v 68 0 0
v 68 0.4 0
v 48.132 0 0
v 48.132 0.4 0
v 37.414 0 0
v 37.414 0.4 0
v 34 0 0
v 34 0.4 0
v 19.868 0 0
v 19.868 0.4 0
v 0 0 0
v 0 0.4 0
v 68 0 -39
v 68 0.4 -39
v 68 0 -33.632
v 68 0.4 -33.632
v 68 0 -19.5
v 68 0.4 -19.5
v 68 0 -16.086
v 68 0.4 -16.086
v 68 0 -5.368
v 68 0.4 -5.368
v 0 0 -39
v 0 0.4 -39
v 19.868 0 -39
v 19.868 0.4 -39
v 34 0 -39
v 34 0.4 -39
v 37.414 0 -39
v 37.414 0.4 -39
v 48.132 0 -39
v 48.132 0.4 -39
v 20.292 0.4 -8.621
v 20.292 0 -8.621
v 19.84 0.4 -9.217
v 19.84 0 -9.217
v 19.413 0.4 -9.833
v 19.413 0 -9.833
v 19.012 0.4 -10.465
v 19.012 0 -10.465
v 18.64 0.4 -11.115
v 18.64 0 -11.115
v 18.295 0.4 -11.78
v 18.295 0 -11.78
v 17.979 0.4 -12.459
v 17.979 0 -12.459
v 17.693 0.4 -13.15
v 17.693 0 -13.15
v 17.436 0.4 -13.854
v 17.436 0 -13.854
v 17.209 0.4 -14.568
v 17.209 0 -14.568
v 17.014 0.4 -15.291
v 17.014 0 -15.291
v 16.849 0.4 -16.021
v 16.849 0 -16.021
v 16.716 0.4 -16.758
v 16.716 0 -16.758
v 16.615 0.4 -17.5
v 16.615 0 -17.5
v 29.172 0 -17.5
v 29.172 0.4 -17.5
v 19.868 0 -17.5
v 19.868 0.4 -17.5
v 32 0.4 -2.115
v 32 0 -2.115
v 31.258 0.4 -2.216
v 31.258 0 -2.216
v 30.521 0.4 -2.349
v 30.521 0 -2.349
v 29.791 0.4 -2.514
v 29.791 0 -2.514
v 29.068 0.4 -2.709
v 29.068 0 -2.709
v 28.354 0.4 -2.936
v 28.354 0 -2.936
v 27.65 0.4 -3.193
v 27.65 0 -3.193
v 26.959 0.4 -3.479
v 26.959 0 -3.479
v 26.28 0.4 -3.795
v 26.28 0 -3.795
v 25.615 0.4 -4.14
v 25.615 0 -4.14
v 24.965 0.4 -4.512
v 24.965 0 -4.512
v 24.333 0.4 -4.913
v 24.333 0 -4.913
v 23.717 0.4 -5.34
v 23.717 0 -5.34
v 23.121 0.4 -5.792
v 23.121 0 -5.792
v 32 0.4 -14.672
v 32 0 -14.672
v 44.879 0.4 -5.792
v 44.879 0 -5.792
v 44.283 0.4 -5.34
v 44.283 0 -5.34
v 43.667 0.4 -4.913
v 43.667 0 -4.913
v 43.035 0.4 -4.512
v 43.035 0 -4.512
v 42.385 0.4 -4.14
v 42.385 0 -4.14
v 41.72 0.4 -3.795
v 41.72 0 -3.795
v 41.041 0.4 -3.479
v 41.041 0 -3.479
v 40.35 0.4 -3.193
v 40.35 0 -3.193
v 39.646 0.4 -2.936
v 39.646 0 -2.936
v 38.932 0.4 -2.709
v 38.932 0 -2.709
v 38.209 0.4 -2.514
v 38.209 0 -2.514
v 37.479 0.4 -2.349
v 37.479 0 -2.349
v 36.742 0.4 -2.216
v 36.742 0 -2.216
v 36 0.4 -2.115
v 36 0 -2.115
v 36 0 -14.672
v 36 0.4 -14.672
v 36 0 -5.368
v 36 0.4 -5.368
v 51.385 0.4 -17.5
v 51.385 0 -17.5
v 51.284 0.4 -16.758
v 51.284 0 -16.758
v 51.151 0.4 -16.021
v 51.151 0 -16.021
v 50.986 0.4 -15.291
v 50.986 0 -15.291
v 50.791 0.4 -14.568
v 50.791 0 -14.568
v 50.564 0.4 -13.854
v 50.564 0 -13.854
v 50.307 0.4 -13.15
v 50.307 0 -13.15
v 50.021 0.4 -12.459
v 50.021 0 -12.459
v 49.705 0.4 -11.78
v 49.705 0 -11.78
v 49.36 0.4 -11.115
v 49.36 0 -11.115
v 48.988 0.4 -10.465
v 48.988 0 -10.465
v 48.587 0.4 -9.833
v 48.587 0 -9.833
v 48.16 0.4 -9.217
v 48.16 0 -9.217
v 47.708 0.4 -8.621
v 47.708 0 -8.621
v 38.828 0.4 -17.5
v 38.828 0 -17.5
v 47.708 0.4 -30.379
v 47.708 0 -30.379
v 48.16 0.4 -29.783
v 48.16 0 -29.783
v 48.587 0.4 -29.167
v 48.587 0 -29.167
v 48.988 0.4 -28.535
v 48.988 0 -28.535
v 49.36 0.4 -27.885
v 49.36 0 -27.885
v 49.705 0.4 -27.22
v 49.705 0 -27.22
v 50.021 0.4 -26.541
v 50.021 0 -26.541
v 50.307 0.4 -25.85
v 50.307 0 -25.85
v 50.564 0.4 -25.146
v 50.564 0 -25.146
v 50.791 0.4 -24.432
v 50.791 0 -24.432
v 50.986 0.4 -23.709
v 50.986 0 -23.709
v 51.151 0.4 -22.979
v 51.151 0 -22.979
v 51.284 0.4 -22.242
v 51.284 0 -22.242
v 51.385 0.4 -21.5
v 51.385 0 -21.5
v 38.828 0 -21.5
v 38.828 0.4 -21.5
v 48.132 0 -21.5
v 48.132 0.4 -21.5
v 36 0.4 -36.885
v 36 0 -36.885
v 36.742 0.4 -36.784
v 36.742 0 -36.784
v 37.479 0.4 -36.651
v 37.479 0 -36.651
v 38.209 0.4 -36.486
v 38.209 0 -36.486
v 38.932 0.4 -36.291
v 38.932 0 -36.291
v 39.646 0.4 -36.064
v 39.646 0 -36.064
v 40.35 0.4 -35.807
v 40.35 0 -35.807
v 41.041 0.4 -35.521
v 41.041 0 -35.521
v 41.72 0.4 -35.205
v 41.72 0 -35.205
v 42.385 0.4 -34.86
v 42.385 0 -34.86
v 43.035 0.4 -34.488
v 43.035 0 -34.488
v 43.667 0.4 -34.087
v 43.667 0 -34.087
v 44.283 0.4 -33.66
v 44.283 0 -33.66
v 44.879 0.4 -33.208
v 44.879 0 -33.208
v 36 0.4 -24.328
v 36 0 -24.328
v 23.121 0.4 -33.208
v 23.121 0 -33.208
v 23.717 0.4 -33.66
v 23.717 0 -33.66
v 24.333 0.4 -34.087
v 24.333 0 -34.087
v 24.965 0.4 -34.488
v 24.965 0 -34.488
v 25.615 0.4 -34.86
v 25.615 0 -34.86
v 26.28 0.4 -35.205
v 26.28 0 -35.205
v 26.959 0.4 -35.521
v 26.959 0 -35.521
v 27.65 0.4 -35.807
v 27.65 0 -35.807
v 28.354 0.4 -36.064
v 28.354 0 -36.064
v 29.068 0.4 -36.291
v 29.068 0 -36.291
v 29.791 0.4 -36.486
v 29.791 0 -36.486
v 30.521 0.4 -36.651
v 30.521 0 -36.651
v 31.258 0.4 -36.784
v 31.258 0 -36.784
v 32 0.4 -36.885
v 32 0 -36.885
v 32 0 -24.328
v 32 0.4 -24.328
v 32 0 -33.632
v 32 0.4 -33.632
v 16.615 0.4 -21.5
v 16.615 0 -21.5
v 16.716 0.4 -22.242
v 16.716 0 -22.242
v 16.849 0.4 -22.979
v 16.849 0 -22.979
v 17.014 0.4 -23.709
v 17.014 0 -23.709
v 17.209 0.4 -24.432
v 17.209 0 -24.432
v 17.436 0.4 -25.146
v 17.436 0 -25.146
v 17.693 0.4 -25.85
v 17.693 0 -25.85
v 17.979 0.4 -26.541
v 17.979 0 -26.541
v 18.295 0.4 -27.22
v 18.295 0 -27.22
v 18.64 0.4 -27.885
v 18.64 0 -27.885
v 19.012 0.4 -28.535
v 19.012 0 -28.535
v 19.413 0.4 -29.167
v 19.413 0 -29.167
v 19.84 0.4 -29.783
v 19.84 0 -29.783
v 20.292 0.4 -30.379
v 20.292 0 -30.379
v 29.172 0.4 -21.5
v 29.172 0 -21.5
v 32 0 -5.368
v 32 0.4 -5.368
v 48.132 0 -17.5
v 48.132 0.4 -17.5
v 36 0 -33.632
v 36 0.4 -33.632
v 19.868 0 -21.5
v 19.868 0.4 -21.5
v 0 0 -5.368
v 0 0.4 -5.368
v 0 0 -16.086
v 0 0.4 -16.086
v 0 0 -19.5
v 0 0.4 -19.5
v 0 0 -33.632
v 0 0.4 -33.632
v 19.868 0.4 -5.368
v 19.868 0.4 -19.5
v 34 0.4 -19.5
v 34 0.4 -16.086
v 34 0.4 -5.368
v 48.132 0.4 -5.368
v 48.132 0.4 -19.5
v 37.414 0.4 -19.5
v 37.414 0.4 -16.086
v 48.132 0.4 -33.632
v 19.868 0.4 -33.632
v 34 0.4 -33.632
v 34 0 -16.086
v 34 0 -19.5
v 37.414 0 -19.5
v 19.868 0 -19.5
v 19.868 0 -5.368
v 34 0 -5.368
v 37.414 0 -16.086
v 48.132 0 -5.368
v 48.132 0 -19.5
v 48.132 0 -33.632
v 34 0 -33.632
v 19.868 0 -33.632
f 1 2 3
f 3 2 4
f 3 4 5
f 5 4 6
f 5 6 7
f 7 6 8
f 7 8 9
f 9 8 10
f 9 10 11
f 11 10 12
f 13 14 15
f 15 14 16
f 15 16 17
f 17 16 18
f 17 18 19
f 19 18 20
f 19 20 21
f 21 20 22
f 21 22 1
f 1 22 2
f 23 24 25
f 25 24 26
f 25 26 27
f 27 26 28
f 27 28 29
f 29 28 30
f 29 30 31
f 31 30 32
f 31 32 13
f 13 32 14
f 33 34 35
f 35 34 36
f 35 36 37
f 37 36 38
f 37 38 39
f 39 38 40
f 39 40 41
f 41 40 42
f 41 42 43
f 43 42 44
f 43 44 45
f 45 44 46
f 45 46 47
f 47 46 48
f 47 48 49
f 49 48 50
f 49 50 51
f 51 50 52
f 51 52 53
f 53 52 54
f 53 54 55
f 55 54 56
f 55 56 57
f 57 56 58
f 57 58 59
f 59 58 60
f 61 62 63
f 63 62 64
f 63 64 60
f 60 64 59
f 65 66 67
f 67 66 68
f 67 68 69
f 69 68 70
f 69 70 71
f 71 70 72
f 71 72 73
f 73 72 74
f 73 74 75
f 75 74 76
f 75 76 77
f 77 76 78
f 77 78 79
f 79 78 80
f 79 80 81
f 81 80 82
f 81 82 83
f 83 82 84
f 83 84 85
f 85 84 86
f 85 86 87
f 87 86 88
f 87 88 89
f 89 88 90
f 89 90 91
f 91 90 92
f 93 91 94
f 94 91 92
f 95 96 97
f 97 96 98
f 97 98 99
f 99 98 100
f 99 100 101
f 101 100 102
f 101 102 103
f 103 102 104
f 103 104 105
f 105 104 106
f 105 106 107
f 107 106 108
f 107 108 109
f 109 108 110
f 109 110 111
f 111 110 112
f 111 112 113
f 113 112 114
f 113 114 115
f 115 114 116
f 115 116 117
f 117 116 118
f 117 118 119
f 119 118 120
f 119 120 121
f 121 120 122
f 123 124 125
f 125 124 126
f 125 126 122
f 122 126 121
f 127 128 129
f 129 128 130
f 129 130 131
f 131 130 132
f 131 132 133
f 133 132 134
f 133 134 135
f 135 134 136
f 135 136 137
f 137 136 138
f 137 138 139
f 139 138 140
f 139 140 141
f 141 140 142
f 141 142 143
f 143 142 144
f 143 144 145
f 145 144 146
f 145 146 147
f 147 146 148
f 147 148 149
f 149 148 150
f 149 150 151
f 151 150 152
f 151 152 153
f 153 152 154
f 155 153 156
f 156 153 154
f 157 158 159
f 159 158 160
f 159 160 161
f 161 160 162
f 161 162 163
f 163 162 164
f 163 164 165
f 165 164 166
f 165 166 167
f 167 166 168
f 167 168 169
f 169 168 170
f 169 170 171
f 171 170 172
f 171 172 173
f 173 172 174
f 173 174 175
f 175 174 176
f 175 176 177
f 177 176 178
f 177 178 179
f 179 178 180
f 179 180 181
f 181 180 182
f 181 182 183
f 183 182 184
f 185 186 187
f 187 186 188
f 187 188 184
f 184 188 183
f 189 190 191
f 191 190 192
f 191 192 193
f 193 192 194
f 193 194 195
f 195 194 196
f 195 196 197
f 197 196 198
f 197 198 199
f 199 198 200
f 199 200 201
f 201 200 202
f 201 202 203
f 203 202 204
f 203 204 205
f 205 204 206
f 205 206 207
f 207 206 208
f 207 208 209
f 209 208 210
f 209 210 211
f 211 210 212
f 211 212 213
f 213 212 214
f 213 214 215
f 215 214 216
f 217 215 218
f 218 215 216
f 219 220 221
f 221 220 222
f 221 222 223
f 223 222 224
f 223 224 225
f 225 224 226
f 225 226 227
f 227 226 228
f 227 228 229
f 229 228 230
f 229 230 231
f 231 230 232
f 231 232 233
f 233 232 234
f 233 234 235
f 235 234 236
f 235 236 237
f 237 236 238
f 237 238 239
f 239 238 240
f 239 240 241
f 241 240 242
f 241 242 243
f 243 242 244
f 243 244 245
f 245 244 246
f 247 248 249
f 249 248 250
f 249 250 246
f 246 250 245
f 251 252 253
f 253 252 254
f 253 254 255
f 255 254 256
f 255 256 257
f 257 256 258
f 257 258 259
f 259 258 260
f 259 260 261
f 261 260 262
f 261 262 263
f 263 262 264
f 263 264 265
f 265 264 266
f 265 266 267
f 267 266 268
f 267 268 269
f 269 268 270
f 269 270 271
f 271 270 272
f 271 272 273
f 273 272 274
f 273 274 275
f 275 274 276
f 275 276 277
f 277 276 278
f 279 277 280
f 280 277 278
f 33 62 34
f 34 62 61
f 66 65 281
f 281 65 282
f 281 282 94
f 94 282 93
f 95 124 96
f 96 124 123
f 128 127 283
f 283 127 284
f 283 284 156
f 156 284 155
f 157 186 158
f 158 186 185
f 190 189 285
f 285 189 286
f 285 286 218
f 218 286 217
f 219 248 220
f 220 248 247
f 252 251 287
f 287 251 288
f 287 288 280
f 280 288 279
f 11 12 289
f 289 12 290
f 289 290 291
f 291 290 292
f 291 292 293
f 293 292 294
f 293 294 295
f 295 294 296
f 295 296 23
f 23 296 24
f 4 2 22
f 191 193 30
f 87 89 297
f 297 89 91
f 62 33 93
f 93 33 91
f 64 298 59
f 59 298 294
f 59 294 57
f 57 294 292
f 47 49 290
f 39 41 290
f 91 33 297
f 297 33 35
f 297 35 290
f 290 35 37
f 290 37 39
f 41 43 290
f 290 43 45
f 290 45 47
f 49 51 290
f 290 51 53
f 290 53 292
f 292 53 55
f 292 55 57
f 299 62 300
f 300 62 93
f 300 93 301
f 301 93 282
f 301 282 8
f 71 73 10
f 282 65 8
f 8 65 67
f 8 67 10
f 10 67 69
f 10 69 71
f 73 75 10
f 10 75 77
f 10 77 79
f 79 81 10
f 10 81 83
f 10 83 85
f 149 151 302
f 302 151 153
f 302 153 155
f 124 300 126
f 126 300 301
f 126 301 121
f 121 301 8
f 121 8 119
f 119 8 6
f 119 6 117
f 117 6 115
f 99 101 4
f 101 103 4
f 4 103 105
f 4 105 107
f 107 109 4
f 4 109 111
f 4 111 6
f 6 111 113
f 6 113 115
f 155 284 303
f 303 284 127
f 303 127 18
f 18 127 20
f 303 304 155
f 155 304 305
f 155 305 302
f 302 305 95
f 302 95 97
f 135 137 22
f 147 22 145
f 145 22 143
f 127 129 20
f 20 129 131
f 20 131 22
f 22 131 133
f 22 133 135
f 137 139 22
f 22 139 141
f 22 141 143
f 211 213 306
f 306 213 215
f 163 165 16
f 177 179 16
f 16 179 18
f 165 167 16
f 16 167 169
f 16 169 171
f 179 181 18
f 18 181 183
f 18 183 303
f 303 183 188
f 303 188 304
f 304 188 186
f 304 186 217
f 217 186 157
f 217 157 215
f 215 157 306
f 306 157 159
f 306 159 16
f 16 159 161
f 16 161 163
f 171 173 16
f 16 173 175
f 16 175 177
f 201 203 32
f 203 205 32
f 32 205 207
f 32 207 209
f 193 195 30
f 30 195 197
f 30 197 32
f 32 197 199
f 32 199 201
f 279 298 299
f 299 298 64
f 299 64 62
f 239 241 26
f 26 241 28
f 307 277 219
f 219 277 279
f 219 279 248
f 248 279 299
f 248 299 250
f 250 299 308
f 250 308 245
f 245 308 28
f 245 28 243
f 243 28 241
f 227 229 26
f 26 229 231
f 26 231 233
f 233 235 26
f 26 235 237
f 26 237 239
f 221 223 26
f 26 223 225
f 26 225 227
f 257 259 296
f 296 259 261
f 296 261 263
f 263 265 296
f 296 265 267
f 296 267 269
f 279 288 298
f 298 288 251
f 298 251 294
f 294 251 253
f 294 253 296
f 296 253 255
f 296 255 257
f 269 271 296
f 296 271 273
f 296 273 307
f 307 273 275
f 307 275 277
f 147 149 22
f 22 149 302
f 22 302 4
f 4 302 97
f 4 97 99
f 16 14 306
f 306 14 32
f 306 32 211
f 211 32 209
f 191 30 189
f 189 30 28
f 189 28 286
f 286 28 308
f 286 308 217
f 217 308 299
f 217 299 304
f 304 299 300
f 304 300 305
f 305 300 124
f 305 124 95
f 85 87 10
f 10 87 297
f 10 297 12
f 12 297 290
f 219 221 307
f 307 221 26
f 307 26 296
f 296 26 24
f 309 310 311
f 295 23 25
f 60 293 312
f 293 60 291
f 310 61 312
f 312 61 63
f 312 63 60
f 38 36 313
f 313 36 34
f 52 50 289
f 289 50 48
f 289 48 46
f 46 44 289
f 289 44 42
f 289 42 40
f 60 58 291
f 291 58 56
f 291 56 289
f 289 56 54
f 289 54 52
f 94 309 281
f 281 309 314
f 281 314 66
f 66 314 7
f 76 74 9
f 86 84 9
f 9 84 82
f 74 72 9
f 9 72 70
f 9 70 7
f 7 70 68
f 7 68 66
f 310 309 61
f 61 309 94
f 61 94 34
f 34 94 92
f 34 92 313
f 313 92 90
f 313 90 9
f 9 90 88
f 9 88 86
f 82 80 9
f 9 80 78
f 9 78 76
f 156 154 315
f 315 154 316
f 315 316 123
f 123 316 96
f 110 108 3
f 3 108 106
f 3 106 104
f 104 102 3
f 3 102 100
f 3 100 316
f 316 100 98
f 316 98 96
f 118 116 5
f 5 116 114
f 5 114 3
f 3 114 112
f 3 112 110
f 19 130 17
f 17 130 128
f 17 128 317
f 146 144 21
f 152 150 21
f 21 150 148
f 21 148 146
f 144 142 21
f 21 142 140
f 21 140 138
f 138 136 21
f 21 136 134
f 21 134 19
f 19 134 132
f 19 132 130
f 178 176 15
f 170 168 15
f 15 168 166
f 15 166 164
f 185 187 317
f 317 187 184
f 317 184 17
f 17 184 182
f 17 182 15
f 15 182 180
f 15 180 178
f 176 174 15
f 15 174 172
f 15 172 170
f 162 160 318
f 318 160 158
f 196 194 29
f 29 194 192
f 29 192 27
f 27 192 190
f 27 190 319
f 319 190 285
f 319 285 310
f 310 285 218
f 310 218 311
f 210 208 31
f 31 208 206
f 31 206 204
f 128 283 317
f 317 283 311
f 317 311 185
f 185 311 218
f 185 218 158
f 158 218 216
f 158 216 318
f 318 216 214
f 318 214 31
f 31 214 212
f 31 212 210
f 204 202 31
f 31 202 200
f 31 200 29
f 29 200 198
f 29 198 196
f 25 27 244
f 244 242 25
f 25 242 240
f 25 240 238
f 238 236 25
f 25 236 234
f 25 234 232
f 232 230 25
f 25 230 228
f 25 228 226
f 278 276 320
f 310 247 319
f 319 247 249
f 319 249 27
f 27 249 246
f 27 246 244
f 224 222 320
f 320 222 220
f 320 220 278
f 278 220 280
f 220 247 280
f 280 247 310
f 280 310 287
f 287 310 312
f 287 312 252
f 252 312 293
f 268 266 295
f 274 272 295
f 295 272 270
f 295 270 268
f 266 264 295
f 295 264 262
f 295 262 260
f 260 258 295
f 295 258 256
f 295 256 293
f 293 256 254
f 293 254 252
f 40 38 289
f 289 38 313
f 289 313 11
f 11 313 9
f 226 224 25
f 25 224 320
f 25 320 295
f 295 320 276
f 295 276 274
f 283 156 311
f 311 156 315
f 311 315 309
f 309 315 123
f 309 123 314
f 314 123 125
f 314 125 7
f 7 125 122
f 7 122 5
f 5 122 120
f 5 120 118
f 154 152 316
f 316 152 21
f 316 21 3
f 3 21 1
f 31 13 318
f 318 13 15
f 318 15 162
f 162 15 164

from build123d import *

# Parameters (mm, degrees)
SKETCH1_W           = 68
SKETCH1_H           = 39
BOSS_EXTRUDE1_DEPTH = 0.4


with BuildPart() as part:
    # Sketch1 → Boss-Extrude1 (new body)
    with BuildSketch(Plane(origin=(0, 0, 0), x_dir=(1, 0, 0), z_dir=(0, 1, 0))):
        with Locations((34, 19.5)):
            Rectangle(SKETCH1_W, SKETCH1_H)
        with BuildLine():
            ThreePointArc((20.292495584, 30.379077291), (17.832108181, 26.196960066), (16.614661349, 21.5))
            Line((16.614661349, 21.5), (29.171572875, 21.5))
            Line((29.171572875, 21.5), (20.292495584, 30.379077291))
        make_face(mode=Mode.SUBTRACT)
        with BuildLine():
            ThreePointArc((32, 36.885338651), (27.303039934, 35.667891819), (23.120922709, 33.207504416))
            Line((23.120922709, 33.207504416), (32, 24.328427125))
            Line((32, 24.328427125), (32, 36.885338651))
        make_face(mode=Mode.SUBTRACT)
        with BuildLine():
            ThreePointArc((44.879077291, 33.207504416), (40.696960066, 35.667891819), (36, 36.885338651))
            Line((36, 36.885338651), (36, 24.328427125))
            Line((36, 24.328427125), (44.879077291, 33.207504416))
        make_face(mode=Mode.SUBTRACT)
        with BuildLine():
            ThreePointArc((51.385338651, 21.5), (50.167891819, 26.196960066), (47.707504416, 30.379077291))
            Line((47.707504416, 30.379077291), (38.828427125, 21.5))
            Line((38.828427125, 21.5), (51.385338651, 21.5))
        make_face(mode=Mode.SUBTRACT)
        with BuildLine():
            ThreePointArc((47.707504416, 8.620922709), (50.167891819, 12.803039934), (51.385338651, 17.5))
            Line((51.385338651, 17.5), (38.828427125, 17.5))
            Line((38.828427125, 17.5), (47.707504416, 8.620922709))
        make_face(mode=Mode.SUBTRACT)
        with BuildLine():
            ThreePointArc((36, 2.114661349), (40.696960066, 3.332108181), (44.879077291, 5.792495584))
            Line((44.879077291, 5.792495584), (36, 14.671572875))
            Line((36, 14.671572875), (36, 2.114661349))
        make_face(mode=Mode.SUBTRACT)
        with BuildLine():
            ThreePointArc((23.120922709, 5.792495584), (27.303039934, 3.332108181), (32, 2.114661349))
            Line((32, 2.114661349), (32, 14.671572875))
            Line((32, 14.671572875), (23.120922709, 5.792495584))
        make_face(mode=Mode.SUBTRACT)
        with BuildLine():
            ThreePointArc((16.614661349, 17.5), (17.832108181, 12.803039934), (20.292495584, 8.620922709))
            Line((20.292495584, 8.620922709), (29.171572875, 17.5))
            Line((29.171572875, 17.5), (16.614661349, 17.5))
        make_face(mode=Mode.SUBTRACT)
    extrude(amount=BOSS_EXTRUDE1_DEPTH)


solid = part.part
